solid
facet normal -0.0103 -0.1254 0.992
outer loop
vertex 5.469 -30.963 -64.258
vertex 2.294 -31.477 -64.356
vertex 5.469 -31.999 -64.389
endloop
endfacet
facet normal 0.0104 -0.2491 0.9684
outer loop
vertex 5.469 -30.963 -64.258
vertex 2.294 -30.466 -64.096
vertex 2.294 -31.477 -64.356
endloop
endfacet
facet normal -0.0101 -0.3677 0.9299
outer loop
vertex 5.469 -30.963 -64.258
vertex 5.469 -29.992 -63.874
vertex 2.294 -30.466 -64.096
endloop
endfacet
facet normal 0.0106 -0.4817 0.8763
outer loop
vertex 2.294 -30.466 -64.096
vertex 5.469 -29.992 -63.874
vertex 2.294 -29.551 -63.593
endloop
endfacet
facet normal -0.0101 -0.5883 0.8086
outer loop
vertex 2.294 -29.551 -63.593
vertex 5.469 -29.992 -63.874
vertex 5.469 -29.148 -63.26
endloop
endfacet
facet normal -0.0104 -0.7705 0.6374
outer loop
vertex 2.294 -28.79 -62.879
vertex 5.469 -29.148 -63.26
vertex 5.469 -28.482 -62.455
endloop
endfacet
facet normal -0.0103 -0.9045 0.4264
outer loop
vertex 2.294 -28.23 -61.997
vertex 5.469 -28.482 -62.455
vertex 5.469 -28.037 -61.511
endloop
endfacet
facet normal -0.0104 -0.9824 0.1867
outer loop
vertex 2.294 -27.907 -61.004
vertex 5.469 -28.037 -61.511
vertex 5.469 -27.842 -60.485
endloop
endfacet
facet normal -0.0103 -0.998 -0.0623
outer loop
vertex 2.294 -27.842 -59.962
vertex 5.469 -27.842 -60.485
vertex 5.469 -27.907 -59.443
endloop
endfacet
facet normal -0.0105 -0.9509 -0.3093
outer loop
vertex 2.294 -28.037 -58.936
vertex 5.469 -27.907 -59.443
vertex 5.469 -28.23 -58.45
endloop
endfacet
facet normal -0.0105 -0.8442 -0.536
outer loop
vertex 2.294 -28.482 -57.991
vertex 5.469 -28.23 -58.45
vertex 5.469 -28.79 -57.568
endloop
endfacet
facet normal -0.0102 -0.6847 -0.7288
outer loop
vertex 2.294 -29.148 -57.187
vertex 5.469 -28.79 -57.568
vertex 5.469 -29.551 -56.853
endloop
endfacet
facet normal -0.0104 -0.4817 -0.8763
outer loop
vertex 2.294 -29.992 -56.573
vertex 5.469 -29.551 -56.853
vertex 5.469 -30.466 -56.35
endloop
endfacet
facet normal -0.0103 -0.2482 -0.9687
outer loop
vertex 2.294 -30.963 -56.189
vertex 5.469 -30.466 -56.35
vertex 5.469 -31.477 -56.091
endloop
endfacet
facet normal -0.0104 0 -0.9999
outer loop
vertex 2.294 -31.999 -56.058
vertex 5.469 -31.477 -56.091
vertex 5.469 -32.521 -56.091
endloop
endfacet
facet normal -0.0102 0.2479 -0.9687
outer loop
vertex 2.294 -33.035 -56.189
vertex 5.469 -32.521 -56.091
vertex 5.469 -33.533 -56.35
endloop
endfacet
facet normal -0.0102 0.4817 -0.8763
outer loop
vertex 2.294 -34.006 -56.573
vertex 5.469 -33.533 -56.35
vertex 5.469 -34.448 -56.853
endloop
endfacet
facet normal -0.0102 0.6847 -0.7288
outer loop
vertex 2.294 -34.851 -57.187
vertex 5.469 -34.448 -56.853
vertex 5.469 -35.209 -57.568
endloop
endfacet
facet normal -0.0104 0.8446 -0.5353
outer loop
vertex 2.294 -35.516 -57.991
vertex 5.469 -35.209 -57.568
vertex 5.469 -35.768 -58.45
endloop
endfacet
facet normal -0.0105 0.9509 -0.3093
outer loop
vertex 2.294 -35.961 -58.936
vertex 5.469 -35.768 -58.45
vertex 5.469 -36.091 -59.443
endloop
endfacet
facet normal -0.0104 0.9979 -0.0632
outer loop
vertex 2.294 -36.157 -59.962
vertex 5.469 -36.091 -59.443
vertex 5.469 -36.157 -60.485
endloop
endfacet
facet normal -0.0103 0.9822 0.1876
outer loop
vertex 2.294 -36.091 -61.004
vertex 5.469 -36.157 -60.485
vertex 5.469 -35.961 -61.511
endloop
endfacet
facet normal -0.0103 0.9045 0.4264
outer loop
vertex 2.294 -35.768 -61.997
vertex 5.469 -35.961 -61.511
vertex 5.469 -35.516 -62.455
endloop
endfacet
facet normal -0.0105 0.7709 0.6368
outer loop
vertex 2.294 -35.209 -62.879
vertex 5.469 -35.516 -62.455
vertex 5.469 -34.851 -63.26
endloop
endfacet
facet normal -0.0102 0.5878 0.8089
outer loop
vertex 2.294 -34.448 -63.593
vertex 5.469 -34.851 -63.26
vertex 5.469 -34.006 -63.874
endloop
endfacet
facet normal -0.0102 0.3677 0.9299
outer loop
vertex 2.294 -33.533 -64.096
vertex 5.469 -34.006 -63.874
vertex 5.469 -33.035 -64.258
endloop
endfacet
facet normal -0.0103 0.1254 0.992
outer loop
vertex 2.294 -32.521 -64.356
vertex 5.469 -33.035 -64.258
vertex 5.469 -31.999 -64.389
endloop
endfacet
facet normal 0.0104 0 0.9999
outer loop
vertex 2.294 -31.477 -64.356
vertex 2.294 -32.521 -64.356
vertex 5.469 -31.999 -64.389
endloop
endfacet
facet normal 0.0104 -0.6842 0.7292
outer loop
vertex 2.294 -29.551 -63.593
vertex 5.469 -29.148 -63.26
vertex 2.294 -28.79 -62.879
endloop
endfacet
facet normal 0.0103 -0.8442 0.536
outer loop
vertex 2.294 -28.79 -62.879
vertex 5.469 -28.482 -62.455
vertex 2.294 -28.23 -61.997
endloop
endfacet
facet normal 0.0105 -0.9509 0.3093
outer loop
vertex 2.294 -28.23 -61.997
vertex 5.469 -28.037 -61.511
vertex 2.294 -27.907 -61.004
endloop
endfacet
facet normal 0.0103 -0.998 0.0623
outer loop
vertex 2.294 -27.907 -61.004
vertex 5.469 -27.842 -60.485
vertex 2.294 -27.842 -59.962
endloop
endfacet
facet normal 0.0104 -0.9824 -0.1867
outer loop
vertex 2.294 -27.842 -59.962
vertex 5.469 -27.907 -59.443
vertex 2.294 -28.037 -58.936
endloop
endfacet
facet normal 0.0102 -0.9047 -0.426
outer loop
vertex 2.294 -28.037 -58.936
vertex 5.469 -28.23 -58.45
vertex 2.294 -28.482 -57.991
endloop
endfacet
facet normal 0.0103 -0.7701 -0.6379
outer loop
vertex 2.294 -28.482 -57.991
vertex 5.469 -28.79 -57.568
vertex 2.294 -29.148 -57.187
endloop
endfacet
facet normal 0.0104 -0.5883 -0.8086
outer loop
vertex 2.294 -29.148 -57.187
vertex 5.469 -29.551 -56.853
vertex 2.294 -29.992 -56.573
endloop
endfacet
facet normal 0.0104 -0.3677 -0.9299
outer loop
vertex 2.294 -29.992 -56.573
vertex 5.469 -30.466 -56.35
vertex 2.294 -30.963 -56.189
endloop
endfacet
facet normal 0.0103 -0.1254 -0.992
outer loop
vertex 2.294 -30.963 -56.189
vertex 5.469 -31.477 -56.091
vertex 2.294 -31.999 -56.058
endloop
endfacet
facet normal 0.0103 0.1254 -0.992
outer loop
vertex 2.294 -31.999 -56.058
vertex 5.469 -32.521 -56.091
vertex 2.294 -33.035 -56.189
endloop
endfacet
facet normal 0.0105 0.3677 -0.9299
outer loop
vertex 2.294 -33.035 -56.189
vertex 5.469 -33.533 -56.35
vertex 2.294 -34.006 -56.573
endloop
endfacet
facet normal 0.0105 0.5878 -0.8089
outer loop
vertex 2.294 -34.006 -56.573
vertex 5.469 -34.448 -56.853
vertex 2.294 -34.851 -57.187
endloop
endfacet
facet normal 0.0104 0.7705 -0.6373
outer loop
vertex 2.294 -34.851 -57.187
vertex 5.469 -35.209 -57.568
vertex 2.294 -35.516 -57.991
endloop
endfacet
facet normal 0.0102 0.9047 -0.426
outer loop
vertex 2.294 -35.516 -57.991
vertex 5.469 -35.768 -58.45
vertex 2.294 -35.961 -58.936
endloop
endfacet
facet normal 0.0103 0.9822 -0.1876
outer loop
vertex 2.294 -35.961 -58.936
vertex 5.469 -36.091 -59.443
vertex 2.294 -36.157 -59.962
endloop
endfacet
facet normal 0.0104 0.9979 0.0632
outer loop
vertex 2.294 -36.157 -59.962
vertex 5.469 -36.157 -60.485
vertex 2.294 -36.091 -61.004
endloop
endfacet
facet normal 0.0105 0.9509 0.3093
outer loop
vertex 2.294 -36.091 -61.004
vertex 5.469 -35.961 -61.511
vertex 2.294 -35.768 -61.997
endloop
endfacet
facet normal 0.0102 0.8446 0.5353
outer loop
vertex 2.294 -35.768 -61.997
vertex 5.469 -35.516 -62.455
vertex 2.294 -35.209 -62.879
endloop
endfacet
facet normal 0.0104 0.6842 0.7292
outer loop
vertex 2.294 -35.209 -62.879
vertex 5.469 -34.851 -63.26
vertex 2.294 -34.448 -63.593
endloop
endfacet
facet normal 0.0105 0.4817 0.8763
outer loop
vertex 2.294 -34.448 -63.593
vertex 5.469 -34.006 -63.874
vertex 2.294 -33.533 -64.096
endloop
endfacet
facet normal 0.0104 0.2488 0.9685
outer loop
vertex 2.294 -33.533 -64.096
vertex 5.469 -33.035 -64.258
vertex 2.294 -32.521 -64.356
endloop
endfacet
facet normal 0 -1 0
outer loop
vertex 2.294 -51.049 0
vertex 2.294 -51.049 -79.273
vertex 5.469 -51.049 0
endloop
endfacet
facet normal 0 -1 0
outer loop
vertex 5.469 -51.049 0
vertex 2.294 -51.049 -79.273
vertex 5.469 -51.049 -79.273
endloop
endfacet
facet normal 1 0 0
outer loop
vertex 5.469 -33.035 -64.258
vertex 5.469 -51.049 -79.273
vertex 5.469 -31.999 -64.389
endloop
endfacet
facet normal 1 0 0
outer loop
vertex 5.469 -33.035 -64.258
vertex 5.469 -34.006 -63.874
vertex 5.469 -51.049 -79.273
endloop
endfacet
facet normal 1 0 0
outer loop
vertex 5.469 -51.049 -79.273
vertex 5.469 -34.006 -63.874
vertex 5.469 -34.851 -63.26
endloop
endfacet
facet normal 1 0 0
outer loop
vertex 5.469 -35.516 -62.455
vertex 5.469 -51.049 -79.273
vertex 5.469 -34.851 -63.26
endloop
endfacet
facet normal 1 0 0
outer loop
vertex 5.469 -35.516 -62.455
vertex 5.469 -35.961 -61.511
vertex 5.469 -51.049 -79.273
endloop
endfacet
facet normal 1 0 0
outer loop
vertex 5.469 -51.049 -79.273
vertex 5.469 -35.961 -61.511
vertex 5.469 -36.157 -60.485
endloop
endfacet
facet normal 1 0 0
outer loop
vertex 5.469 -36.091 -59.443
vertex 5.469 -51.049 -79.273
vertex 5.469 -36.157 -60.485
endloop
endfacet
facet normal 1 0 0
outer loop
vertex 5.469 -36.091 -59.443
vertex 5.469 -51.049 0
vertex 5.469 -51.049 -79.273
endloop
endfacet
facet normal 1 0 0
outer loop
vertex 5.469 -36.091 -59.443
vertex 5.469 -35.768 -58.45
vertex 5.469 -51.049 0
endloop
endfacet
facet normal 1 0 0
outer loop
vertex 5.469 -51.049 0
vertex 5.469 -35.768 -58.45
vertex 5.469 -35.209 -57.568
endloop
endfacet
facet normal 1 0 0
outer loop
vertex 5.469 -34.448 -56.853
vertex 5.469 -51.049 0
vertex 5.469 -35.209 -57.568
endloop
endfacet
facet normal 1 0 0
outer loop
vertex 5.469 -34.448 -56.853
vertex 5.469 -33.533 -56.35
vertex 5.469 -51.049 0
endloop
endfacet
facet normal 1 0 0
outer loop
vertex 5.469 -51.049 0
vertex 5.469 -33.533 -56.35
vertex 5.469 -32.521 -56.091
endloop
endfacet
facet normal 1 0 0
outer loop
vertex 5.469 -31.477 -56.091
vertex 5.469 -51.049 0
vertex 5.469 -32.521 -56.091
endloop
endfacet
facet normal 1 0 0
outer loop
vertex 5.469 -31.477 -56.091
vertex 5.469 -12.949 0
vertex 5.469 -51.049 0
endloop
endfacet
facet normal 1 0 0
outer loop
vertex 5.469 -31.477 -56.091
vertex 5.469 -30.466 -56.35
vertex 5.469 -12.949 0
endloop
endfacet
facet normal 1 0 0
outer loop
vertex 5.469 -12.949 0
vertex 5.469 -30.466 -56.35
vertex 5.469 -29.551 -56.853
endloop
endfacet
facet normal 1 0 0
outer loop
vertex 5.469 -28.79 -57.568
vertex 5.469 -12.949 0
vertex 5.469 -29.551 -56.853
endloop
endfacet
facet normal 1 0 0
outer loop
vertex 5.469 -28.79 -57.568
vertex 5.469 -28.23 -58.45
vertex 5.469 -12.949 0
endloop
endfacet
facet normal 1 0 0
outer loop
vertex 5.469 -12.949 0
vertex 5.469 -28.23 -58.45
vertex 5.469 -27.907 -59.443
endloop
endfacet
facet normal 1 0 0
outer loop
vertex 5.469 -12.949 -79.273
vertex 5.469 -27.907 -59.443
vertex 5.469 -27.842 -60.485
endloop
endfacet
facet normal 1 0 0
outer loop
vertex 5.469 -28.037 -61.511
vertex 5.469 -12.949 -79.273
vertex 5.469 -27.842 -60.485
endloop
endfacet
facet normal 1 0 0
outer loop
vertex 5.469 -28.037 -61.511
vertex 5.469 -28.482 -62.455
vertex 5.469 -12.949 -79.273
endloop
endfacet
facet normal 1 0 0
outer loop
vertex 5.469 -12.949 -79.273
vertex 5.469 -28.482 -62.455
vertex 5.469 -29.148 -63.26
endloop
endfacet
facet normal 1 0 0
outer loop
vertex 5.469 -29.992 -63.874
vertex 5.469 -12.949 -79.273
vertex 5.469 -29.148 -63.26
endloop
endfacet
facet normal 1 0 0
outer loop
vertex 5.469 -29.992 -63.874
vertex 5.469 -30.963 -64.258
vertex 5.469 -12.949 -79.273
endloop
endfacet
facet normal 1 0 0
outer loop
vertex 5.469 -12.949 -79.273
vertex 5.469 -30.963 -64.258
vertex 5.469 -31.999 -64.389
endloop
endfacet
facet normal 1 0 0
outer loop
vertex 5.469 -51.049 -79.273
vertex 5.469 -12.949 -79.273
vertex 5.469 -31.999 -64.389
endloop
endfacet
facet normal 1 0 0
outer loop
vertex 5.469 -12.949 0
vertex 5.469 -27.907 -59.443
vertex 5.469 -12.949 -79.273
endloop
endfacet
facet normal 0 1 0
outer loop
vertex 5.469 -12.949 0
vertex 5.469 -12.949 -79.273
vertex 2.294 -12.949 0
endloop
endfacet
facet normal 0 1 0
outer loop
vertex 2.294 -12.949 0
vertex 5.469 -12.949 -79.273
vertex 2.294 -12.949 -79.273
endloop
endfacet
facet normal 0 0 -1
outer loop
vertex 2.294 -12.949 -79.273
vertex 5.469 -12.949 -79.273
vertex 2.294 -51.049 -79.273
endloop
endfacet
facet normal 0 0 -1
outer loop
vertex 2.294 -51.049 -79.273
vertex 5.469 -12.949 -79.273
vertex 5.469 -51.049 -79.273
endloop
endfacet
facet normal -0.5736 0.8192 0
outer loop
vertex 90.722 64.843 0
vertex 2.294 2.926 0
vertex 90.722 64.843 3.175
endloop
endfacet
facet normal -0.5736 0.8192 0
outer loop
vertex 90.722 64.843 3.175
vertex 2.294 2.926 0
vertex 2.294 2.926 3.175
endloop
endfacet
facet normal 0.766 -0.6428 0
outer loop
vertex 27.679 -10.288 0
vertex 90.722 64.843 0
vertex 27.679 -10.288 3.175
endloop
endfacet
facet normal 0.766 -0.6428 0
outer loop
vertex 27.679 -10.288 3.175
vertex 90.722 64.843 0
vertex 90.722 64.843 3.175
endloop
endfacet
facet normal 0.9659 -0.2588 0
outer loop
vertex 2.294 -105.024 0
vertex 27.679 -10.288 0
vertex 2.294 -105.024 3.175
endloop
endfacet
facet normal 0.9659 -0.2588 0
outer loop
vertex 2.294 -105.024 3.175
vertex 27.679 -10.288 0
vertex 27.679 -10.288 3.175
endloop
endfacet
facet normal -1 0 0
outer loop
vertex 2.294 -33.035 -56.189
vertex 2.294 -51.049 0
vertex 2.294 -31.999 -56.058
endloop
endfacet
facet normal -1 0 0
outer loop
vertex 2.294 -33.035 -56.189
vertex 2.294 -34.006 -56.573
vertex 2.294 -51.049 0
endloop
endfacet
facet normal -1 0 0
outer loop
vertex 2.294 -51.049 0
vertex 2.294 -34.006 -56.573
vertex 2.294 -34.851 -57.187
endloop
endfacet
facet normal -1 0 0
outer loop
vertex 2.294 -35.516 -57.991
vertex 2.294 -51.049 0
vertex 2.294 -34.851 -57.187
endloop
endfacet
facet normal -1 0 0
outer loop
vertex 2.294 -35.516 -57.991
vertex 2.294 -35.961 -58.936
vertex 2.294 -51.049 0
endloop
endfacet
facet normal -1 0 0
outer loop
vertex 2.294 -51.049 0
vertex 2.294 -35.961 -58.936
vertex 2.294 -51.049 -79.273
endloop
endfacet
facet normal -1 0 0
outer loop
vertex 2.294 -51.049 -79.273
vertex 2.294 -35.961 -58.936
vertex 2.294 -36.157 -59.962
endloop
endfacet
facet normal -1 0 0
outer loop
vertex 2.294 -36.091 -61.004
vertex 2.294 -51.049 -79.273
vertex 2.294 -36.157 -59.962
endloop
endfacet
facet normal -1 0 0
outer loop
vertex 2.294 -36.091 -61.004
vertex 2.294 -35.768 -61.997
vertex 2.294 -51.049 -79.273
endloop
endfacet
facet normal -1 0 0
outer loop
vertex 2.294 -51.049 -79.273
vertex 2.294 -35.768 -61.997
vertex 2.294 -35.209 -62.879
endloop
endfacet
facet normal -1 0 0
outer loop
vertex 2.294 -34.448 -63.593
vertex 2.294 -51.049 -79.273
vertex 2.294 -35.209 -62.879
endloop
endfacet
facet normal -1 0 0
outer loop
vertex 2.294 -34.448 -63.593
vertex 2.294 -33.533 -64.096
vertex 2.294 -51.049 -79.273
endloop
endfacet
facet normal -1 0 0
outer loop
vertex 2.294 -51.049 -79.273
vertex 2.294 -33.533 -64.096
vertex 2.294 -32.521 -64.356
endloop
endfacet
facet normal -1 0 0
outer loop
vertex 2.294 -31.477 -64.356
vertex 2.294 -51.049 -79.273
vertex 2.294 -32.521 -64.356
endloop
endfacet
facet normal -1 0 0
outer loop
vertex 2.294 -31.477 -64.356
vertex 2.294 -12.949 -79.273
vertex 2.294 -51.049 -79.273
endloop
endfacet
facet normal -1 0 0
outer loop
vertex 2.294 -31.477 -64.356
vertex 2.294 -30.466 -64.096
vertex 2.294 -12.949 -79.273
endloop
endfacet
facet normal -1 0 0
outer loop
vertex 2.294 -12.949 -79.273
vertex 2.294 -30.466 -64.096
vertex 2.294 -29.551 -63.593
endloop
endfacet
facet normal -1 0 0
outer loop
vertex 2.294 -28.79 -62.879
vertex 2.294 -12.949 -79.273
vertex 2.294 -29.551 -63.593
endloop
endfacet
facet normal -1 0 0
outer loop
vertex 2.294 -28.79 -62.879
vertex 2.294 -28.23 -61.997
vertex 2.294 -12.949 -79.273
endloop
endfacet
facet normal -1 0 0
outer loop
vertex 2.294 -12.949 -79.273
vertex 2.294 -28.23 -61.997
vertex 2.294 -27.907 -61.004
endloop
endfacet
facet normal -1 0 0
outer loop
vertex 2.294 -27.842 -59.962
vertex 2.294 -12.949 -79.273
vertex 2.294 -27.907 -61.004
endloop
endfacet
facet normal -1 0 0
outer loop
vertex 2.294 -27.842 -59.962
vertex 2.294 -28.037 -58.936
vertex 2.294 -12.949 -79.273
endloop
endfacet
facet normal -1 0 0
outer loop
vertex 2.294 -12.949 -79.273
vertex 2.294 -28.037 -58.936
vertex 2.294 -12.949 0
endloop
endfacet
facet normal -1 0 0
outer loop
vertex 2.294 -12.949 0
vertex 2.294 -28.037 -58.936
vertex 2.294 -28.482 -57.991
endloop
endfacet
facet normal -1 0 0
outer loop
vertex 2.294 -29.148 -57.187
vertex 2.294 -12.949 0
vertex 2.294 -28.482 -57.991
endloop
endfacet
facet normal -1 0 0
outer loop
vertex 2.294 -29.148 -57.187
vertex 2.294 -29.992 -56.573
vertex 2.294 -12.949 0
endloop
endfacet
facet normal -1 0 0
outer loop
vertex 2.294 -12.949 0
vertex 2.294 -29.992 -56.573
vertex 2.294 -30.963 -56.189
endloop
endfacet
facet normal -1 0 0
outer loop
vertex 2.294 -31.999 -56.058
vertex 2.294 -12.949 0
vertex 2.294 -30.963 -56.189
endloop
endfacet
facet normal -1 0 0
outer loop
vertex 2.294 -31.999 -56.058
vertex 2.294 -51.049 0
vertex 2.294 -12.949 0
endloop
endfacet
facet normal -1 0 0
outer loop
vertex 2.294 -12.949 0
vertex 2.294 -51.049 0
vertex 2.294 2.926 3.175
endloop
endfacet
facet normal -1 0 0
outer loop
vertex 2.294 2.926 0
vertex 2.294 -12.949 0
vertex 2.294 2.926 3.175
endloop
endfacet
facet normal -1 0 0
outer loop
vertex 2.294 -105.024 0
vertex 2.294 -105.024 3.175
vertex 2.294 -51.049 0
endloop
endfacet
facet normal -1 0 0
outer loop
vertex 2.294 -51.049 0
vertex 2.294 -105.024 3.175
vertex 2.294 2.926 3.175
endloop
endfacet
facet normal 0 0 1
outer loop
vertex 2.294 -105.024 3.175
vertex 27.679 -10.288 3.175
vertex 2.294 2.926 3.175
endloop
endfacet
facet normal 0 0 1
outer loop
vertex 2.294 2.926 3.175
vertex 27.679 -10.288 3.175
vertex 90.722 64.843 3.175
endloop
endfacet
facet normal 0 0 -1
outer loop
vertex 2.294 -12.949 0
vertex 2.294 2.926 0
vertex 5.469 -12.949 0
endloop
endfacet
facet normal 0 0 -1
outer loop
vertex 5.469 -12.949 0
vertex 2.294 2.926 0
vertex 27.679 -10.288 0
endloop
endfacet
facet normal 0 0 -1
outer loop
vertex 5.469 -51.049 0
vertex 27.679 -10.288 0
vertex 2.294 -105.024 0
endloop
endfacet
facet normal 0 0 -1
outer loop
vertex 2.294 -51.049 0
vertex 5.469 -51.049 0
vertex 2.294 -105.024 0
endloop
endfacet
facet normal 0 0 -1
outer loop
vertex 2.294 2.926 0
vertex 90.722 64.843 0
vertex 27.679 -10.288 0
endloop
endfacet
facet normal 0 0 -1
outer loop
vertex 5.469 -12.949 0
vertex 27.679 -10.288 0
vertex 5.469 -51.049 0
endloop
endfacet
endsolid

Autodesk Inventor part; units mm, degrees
ref_plane "YZ Plane" through (0, 0, 0) normal (1, 0, 0) x (0, 1, 0)
ref_plane "XZ Plane" through (0, 0, 0) normal (0, 1, 0) x (-1, 0, 0)
ref_plane "XY Plane" through (0, 0, 0) normal (0, 0, 1) x (1, 0, 0)
sketch "Sketch1" plane through (0, 0, 0) normal (0, 0, 1) x (1, 0, 0)
  line L0 (2.2943, 2.9258) -> (2.2943, -105.0242)
  line L1 (2.2943, 2.9258) -> (90.7218, 64.8434)
  line L2 (90.7218, 64.8434) -> (27.6787, -10.2885)
  line L3 (2.2943, -105.0242) -> (27.6787, -10.2885)
  point P0 (0, 0)
  dimension "d0" = 107.95
  dimension "d1" = 107.95
extrude "Extrusion1" add sketch "Sketch1" along normal blind 3.175
sketch "Sketch2" plane through (0, 0, 0) normal (0, 0, -1) x (-1, 0, 0)
  line L0 (-2.2943, 2.9258) -> (-2.2943, -105.0242)
  line L1 (-2.2943, -51.0492) -> (-5.4693, -51.0492)
  line L2 (-5.4693, -51.0492) -> (-5.4693, -12.9492)
  line L3 (-5.4693, -12.9492) -> (-2.2943, -12.9492)
  point P0 (0, 0)
  dimension "d8" = 3.175
  dimension "d9" = 38.1
extrude "Extrusion2" add sketch "Sketch2" along normal blind 79.2734
sketch "Sketch3" plane through (2.2943, -105.0242, 3.175) normal (-1, 0, 0) x (0, 0, 1)
  line L0 (-82.4484, 92.075) -> (-63.3984, 92.075)
  line L1 (-63.3984, 92.075) -> (-63.3984, 73.025)
  line L2 (-63.3984, 73.025) -> (-82.4484, 73.025)
  line L3 (-82.4484, 73.025) -> (-82.4484, 92.075)
  point P0 (-3.175, 105.0242)
  dimension "d12" = 19.05
  dimension "d13" = 19.05
hole "Hole1" at (2.2943, -31.9992, -60.2234) direction (1, 0, 0) diameter 8.3312 end through all
properties part number "Left Hip"
